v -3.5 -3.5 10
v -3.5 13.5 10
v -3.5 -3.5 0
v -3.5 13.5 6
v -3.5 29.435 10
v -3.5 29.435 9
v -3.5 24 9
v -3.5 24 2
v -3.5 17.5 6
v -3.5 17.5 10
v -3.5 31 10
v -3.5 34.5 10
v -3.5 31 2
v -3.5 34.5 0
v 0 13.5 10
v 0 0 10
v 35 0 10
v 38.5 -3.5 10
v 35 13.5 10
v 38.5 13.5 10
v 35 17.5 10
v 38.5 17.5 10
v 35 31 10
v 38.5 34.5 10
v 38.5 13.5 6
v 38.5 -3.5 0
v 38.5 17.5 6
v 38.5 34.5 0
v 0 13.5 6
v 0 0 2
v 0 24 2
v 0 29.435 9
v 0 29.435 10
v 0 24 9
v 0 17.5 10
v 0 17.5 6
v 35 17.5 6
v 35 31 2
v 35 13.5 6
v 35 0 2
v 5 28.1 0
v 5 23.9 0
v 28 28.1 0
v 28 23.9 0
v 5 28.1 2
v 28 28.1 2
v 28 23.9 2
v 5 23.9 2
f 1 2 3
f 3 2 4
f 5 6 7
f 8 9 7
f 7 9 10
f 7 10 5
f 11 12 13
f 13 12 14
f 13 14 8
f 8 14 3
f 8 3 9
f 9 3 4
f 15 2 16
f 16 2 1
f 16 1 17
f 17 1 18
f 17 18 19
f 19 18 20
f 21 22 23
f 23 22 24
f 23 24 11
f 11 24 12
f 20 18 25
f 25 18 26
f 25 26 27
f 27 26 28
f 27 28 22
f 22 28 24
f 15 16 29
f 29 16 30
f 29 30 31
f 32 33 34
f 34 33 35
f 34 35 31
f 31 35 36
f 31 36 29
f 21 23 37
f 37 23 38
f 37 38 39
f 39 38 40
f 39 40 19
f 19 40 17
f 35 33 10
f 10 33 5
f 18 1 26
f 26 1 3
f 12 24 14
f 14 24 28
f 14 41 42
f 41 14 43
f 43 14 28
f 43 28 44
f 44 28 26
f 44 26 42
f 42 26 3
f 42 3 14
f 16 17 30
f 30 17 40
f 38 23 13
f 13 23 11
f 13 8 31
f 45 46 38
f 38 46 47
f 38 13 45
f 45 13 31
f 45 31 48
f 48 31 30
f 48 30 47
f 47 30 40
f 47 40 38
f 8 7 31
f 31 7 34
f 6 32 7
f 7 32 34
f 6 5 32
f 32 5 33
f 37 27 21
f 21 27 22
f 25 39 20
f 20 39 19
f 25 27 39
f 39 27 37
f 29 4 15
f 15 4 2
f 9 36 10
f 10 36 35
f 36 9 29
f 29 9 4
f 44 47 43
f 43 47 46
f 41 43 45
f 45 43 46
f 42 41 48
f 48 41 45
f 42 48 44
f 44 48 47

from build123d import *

# Parameters (mm, degrees)
SKETCH_1_W          = 42
SKETCH_1_H          = 38
EXTRUDE_1_DEPTH     = 2
SKETCH_2_W          = 42
SKETCH_2_H          = 38
SKETCH_2_W_2        = 35
SKETCH_2_H_2        = 31
EXTRUDE_2_DEPTH     = 8
SKETCH_3_W          = 1
SKETCH_3_H          = 1.564579438
CUT_EXTRUDE_1_DEPTH = 6.5
CUT_EXTRUDE_3_DEPTH = 4
SKETCH_7_W          = 23
SKETCH_7_H          = 4.2
CUT_EXTRUDE_4_DEPTH = 10


with BuildPart() as part:
    # 草图1 → 凸台-拉伸1 (new body)
    with BuildSketch(Plane.XY):
        with Locations((17.5, 15.5)):
            Rectangle(SKETCH_1_W, SKETCH_1_H)
    extrude(amount=EXTRUDE_1_DEPTH)

    # 草图2 → 凸台-拉伸2 (add)
    with BuildSketch(Plane.XY.offset(2)):
        with Locations((17.5, 15.5)):
            Rectangle(SKETCH_2_W, SKETCH_2_H)
        with Locations((17.5, 15.5)):
            Rectangle(SKETCH_2_W_2, SKETCH_2_H_2, mode=Mode.SUBTRACT)
    extrude(amount=EXTRUDE_2_DEPTH)

    # 草图3 → 切除-拉伸1 (cut)
    with BuildSketch(Plane.ZY.offset(3.5)):
        Polygon((9, 31), (2, 31), (2, 24), (9, 24), (9, 29.435420562), align=None)
        with Locations((9.5, 30.217710281)):
            Rectangle(SKETCH_3_W, SKETCH_3_H)
    extrude(amount=-CUT_EXTRUDE_1_DEPTH, mode=Mode.SUBTRACT)

    # 草图6 → 切除-拉伸3 (cut)
    with BuildSketch(Plane.XY.offset(10)):
        Polygon((0, 13.5), (0, 15.5), (0, 17.5), (-3.5, 17.5), (-3.5, 13.5), align=None)
        Polygon((35, 17.5), (35, 15.5), (35, 13.5), (38.5, 13.5), (38.5, 17.5), align=None)
    extrude(amount=-CUT_EXTRUDE_3_DEPTH, mode=Mode.SUBTRACT)

    # 草图7 → 切除-拉伸4 (cut)
    with BuildSketch(Plane(origin=(0, 0, 0), x_dir=(-1, 0, 0), z_dir=(0, 0, -1))):
        with Locations((-16.5, 26)):
            Rectangle(SKETCH_7_W, SKETCH_7_H)
    extrude(amount=-CUT_EXTRUDE_4_DEPTH, mode=Mode.SUBTRACT)


solid = part.part
